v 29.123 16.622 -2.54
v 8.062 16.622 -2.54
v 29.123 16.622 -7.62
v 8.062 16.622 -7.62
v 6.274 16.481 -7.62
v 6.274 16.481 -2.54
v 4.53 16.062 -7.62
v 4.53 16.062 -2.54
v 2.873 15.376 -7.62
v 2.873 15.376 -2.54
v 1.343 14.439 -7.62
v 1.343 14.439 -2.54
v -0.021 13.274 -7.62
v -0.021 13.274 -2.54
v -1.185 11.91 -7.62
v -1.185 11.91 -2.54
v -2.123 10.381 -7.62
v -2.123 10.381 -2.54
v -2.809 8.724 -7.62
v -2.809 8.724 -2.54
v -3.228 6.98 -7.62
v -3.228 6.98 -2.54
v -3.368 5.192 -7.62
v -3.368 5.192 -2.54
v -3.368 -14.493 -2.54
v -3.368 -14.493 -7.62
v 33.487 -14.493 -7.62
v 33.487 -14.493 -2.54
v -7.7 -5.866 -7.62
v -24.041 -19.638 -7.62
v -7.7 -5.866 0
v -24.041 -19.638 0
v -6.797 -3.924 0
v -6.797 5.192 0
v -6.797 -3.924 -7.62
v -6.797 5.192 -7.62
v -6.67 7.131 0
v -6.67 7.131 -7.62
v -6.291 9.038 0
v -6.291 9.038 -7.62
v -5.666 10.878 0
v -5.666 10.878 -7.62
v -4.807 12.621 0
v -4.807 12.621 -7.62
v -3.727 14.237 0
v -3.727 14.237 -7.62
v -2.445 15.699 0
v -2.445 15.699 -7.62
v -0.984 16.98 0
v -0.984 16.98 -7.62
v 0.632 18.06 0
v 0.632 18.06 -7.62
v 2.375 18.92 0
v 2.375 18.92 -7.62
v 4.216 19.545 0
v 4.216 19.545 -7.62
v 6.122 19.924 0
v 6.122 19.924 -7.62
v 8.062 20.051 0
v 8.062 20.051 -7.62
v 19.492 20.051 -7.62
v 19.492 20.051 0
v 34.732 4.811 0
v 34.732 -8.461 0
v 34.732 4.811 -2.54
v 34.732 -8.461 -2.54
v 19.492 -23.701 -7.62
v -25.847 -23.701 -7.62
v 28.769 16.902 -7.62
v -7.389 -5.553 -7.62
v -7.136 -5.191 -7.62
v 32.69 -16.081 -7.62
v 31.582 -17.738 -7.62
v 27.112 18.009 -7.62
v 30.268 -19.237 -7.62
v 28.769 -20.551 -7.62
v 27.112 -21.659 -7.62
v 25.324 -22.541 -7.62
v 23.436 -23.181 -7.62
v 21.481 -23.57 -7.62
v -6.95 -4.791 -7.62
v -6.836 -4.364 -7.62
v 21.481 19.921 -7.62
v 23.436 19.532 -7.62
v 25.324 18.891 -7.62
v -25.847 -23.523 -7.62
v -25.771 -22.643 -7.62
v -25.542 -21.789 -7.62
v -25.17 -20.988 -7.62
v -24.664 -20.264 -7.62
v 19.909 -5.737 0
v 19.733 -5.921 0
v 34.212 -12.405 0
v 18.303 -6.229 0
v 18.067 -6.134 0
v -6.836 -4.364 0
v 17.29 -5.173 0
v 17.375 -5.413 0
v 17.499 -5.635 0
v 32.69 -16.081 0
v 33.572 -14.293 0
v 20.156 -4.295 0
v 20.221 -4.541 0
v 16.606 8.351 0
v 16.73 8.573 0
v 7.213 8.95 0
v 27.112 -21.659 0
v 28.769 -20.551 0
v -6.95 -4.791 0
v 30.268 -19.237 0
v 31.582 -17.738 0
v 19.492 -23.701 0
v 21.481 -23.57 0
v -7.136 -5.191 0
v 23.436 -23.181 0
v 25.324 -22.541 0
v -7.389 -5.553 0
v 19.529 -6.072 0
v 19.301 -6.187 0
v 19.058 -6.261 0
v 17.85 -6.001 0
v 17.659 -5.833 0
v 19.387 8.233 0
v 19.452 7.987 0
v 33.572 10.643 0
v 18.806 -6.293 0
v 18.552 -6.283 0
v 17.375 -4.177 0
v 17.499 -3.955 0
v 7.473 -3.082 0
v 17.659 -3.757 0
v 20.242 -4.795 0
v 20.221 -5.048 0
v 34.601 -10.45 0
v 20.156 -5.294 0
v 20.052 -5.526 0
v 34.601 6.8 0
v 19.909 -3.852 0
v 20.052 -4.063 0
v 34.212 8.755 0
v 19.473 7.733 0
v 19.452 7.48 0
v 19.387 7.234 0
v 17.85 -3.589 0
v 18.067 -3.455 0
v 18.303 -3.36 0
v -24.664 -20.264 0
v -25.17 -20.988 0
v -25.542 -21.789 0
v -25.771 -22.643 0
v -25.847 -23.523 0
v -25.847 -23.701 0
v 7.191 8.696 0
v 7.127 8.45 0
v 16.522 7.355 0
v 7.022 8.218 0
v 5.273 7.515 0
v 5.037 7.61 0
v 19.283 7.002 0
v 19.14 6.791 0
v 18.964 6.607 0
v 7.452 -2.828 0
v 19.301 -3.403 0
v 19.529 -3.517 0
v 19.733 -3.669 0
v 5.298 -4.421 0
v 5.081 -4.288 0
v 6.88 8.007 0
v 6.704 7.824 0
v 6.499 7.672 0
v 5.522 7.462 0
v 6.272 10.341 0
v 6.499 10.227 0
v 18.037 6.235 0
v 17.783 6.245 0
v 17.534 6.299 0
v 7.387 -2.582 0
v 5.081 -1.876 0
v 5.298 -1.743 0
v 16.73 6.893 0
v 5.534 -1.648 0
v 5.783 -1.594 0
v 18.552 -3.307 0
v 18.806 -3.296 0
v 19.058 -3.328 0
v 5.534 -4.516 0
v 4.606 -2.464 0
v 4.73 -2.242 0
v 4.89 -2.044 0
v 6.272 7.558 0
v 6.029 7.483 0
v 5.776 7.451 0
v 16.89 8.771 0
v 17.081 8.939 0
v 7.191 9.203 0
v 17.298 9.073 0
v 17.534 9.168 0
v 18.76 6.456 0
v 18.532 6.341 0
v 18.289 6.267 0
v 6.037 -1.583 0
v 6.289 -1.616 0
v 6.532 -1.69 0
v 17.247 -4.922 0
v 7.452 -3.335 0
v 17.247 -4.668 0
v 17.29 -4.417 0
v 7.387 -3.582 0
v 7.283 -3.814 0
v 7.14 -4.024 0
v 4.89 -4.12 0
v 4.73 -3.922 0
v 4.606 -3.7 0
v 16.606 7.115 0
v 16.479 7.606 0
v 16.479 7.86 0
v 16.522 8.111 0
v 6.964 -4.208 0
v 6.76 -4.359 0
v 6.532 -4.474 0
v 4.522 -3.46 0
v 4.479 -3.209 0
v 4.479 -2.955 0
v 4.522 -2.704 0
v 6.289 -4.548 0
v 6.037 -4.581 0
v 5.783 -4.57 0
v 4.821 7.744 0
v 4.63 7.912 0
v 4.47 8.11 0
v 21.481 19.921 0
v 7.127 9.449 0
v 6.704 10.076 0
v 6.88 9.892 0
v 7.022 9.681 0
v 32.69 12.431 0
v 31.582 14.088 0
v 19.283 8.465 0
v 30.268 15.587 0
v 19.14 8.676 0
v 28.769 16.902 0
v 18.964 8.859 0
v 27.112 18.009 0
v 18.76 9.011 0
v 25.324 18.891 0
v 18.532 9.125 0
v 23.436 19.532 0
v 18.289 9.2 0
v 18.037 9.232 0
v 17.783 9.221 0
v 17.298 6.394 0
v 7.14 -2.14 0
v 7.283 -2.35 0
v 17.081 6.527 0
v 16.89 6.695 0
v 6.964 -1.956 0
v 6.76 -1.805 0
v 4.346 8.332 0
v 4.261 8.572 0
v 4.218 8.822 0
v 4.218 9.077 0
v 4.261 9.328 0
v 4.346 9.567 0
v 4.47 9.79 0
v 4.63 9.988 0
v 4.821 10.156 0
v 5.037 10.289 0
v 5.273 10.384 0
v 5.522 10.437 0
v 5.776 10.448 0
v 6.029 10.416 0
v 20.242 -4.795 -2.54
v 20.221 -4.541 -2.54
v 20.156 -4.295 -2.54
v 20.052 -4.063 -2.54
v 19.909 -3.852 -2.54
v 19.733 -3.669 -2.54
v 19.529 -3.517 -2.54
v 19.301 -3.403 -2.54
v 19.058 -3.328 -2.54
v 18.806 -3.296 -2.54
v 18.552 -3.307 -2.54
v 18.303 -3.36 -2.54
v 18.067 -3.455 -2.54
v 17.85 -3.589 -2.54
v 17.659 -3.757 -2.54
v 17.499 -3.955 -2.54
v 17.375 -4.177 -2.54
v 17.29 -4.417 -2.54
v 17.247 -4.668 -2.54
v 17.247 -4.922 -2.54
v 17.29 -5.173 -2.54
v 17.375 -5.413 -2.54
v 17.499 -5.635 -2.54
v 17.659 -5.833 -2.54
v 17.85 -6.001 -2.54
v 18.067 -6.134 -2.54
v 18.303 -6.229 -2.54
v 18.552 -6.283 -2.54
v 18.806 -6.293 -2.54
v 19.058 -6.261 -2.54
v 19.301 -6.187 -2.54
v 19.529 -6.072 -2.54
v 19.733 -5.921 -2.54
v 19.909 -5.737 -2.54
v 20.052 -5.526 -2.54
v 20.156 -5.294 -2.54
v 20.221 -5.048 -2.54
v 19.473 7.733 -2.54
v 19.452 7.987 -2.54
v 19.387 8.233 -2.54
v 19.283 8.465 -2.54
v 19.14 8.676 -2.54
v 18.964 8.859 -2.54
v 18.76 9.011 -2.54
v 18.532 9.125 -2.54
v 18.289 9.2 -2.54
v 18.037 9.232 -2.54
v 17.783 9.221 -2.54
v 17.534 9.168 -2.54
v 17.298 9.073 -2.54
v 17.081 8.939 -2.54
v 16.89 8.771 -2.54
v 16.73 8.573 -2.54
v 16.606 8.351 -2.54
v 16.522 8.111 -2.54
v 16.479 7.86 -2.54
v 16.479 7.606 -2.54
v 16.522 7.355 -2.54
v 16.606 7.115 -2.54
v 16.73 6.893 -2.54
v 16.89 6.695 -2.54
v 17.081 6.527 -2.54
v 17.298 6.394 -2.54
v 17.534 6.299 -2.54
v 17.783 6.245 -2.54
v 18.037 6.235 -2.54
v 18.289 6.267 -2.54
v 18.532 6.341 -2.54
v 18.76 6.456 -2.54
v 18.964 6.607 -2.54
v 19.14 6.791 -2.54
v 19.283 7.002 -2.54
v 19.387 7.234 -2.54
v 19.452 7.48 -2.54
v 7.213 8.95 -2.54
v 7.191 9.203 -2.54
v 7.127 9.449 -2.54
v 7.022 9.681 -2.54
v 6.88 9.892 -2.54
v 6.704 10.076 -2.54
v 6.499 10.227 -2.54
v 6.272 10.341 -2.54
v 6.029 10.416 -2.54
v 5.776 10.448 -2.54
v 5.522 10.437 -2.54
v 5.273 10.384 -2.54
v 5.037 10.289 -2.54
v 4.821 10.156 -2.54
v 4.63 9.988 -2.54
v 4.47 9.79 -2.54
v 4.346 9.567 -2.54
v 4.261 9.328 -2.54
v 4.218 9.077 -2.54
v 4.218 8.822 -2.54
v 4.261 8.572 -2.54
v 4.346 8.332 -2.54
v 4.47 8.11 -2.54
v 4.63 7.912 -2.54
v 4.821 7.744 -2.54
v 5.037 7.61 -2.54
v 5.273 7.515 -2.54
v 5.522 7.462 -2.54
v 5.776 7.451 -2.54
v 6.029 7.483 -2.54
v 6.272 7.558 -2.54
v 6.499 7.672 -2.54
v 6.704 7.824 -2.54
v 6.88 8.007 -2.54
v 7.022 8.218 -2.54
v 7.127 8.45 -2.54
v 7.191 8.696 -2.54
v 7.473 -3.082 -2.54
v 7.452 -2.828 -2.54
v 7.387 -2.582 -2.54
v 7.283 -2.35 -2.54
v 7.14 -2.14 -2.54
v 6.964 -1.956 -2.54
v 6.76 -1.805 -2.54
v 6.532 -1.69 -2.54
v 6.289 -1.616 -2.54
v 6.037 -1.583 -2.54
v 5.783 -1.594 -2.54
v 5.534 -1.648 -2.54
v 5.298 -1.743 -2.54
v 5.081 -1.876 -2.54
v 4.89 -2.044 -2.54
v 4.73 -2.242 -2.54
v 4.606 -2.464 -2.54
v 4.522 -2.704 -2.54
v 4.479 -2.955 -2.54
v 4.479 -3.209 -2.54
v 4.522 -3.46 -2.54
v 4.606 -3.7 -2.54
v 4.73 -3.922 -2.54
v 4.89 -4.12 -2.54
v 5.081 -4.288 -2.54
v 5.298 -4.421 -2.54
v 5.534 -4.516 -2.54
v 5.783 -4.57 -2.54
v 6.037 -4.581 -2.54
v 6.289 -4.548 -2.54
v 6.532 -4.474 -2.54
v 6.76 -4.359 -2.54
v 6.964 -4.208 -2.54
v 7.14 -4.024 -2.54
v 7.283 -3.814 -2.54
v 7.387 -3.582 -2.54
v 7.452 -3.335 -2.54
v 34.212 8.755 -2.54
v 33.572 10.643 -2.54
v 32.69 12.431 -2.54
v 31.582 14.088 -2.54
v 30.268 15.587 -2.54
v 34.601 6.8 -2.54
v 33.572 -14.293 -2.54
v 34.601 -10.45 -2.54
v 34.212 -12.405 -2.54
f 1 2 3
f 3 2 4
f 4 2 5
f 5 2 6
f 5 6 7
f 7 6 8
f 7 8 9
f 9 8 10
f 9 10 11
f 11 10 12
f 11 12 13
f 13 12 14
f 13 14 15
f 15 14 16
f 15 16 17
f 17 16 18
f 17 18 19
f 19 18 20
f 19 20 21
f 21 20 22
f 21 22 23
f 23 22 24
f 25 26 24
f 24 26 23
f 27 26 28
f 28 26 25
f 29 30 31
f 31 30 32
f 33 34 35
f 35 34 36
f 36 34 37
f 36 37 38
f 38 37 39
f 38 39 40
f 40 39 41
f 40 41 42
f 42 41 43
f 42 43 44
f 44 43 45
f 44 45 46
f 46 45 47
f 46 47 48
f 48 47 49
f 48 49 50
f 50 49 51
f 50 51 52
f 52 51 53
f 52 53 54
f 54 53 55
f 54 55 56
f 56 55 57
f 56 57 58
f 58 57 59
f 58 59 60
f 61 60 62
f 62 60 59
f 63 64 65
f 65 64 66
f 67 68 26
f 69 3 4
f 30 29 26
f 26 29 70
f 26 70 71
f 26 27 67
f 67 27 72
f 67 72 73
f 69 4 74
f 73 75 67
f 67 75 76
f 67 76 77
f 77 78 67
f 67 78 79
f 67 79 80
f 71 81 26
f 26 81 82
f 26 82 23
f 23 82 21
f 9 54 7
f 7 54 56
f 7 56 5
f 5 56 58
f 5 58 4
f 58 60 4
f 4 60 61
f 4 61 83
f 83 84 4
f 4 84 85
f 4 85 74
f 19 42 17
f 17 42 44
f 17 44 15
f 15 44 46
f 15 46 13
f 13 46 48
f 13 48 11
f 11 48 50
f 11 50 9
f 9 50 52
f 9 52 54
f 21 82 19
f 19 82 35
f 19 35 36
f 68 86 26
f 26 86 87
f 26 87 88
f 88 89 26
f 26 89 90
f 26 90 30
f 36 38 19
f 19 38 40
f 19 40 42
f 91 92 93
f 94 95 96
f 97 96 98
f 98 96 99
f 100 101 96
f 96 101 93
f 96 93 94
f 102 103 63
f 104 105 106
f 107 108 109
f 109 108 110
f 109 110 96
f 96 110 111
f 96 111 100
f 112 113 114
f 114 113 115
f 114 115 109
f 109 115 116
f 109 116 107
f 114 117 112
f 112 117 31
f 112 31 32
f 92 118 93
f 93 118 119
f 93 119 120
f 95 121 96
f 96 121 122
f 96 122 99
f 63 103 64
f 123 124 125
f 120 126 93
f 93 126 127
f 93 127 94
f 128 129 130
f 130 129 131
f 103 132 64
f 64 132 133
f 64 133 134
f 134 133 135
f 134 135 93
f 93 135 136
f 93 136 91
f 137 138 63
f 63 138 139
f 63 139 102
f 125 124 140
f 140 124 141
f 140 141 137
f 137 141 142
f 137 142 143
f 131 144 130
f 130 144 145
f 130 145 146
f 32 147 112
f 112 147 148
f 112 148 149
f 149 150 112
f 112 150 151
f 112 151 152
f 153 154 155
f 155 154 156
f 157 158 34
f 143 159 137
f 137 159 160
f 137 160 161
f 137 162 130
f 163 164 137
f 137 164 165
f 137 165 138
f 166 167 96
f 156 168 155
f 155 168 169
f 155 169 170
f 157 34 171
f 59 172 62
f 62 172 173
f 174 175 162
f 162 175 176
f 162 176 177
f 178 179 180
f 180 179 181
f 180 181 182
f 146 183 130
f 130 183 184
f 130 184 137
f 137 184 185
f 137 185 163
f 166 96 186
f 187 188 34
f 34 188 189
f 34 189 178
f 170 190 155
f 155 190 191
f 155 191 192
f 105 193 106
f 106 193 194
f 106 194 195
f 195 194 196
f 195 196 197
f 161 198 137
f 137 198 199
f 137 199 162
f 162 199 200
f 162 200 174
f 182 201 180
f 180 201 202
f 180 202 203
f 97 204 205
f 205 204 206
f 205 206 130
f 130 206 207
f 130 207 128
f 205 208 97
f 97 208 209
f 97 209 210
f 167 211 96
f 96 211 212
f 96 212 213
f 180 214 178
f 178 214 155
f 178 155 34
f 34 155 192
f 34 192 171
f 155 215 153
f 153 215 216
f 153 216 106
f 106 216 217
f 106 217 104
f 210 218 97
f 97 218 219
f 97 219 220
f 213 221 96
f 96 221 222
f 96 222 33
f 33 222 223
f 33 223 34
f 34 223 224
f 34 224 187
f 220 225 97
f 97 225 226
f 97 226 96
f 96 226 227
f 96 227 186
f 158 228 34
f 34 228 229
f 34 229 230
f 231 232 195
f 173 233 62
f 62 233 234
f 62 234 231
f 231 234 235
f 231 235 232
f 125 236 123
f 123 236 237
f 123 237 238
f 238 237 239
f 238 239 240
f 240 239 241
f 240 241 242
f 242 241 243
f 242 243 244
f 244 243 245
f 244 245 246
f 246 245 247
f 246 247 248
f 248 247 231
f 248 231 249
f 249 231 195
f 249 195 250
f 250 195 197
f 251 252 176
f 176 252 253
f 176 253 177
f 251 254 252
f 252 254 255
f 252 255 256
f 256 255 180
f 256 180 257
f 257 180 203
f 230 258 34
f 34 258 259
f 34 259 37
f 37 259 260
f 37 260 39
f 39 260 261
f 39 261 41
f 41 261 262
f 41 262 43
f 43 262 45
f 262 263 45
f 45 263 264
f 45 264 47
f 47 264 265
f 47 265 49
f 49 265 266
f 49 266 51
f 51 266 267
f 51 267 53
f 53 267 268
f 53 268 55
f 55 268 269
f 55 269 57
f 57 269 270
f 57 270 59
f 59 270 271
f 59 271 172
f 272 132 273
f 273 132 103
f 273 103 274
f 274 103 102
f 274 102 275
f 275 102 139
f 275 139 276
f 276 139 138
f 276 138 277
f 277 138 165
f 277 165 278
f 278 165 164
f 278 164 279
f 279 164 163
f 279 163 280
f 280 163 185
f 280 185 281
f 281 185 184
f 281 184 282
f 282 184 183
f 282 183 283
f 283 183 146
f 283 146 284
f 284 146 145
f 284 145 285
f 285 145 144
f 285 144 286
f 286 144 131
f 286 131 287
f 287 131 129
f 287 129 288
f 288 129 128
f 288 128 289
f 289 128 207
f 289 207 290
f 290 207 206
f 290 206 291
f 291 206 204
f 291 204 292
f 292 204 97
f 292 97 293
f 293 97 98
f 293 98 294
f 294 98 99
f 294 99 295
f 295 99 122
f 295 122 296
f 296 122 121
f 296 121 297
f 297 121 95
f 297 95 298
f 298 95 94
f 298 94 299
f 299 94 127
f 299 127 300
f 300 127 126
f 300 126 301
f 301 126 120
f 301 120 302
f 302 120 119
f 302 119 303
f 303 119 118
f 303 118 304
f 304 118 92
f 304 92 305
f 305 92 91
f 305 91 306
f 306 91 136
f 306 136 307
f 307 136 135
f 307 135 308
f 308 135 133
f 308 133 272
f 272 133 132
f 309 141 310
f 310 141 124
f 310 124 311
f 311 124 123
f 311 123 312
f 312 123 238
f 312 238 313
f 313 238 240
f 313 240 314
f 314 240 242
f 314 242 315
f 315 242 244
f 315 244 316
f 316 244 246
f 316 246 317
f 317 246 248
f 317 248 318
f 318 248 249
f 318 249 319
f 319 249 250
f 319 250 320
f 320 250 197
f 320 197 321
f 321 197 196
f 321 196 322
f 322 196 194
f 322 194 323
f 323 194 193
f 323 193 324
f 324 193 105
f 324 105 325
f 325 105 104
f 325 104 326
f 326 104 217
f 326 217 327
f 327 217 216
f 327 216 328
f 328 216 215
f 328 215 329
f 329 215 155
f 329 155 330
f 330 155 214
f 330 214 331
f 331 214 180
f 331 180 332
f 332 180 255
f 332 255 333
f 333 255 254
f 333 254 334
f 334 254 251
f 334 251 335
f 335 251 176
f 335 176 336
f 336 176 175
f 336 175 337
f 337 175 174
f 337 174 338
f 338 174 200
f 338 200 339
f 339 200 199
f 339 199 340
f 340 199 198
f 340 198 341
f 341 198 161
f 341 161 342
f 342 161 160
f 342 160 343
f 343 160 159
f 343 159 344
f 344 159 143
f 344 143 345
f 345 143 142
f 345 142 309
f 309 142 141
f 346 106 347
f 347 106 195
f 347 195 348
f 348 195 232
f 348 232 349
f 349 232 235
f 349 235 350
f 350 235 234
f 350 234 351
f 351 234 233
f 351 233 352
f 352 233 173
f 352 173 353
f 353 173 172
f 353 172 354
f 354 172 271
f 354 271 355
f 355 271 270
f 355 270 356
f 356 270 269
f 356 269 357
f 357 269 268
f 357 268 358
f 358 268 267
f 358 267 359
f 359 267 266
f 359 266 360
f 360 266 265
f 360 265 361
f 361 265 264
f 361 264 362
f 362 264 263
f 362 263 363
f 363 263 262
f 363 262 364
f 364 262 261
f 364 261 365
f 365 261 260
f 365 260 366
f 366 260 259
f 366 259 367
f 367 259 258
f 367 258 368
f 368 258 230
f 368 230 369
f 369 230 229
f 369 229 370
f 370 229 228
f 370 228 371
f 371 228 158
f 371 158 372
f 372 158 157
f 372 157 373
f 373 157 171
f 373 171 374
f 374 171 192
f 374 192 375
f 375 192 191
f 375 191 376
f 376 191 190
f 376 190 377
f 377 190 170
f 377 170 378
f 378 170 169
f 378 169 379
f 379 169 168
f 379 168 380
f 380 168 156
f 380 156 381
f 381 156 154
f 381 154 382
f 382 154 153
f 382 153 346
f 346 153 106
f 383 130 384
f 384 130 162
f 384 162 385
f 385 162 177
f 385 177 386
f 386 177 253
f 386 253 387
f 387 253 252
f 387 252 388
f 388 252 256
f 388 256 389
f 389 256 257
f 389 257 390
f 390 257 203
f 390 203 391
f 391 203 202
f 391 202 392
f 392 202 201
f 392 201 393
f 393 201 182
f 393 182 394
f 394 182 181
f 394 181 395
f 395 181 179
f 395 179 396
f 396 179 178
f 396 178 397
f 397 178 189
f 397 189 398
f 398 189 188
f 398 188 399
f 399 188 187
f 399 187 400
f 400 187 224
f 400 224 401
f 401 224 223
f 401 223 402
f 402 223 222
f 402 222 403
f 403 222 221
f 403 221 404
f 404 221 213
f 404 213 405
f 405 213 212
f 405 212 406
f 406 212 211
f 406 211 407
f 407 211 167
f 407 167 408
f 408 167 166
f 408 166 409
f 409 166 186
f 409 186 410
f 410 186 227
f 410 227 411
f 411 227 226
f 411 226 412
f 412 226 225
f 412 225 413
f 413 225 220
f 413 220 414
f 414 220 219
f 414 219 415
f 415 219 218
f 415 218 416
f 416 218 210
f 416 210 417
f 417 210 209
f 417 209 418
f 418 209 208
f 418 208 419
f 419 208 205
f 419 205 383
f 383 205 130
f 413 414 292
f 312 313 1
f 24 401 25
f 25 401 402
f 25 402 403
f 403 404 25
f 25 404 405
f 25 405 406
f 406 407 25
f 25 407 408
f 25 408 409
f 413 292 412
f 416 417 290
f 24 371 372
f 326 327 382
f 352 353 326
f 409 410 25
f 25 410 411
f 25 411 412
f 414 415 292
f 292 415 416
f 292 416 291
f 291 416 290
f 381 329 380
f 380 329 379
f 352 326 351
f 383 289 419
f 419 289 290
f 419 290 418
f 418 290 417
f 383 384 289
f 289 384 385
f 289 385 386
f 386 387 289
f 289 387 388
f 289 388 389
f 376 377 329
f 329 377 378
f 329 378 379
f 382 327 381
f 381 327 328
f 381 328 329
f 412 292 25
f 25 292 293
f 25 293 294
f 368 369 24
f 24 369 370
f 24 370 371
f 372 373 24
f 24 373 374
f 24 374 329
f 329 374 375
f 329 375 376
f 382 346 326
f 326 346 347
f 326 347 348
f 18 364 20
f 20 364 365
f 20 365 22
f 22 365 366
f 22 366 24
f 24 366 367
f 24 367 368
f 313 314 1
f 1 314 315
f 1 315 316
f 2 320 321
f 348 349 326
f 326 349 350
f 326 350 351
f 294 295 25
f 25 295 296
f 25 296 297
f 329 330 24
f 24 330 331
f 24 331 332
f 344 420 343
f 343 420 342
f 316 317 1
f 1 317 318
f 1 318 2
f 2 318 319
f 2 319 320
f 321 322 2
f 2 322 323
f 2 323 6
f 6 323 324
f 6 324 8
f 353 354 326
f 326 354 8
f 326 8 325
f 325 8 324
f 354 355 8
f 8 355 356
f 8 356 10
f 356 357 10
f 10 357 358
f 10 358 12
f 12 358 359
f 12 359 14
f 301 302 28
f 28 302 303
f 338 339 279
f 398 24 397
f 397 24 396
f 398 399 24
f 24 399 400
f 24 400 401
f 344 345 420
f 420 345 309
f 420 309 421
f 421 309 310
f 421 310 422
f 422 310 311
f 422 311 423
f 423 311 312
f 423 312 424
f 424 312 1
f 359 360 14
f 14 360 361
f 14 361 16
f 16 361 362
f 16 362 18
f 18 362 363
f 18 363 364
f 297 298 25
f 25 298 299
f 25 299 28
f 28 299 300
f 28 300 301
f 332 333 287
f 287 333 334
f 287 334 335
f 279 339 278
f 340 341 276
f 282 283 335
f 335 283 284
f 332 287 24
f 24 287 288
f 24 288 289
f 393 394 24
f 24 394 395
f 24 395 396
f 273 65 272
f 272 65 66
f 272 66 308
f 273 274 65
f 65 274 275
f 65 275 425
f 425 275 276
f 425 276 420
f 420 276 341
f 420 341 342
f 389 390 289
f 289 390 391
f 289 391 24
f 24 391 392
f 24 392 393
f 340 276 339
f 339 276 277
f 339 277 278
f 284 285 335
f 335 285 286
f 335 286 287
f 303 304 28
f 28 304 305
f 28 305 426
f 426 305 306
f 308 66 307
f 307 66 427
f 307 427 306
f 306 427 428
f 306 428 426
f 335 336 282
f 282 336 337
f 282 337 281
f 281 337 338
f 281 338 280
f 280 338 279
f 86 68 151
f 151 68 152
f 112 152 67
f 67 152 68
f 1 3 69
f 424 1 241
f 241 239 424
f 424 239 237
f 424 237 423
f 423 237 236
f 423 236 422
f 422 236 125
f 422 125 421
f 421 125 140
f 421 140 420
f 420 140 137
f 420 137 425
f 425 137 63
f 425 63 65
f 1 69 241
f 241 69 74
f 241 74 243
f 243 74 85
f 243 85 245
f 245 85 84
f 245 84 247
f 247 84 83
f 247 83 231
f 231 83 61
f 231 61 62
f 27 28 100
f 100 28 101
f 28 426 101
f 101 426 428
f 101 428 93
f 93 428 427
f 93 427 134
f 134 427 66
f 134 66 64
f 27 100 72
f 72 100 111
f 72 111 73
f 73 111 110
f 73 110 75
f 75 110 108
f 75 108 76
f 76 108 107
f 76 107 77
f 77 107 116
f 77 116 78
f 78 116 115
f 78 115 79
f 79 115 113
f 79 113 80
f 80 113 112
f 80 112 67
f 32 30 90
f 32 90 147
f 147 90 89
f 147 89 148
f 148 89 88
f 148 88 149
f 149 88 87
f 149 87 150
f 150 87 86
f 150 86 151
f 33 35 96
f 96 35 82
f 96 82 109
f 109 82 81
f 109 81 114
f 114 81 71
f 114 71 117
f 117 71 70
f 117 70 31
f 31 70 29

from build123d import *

# Parameters (mm, degrees)
BOSS_EXTRUDE1_DEPTH = 7.62
SKETCH4_3_R         = 1.5
BOSS_EXTRUDE2_DEPTH = 2.54
SKETCH5_W           = 60.579
SKETCH5_H           = 7.62
BOSS_EXTRUDE3_DEPTH = 2.54
FILLET1_R           = 15.24
FILLET2_R           = 5.08
FILLET3_R           = 2.54


with BuildPart() as part:
    # Sketch4 → Boss-Extrude1 (new body)
    with BuildSketch(Plane.XY):
        with BuildLine():
            Line((34.731702618, -14.493095403), (-3.368297382, -14.493095403))
            Line((-3.368297382, -14.493095403), (-3.368297382, -11.064095403))
            Line((-3.368297382, -11.064095403), (-3.368297382, -8.326281589))
            Line((-3.368297382, -8.326281589), (-3.368297382, 5.191904597))
            ThreePointArc((-3.368297382, 5.191904597), (-0.020527891, 13.274135106), (8.061702618, 16.621904597))
            Line((8.061702618, 16.621904597), (34.731702618, 16.621904597))
            Line((34.731702618, 16.621904597), (34.731702618, 20.050904597))
            Line((34.731702618, 20.050904597), (8.061702618, 20.050904597))
            ThreePointArc((8.061702618, 20.050904597), (-2.445197043, 15.698804259), (-6.797297382, 5.191904597))
            Line((-6.797297382, 5.191904597), (-6.797297382, -5.10519069))
            Line((-6.797297382, -5.10519069), (-6.797297382, -14.493095403))
            Line((-6.797297382, -14.493095403), (-6.797297382, -17.922095403))
            Line((-6.797297382, -17.922095403), (-3.368297382, -17.922095403))
            Line((-3.368297382, -17.922095403), (34.731702618, -17.922095403))
            Line((34.731702618, -17.922095403), (34.731702618, -14.493095403))
        make_face()
        Polygon((-6.797297382, -21.160595403), (-6.797297382, -17.922095403), (-6.797297382, -14.493095403), (-6.797297382, -5.10519069), (-25.847297382, -21.160595403), align=None)
        Polygon((-6.797297382, -21.160595403), (34.731702618, -21.160595403), (34.731702618, -17.922095403), (-3.368297382, -17.922095403), (-6.797297382, -17.922095403), align=None)
    extrude(amount=-BOSS_EXTRUDE1_DEPTH)

    # Sketch4<3> → Boss-Extrude2 (add)
    with BuildSketch(Plane.XY):
        with BuildLine():
            Line((-3.368297382, -11.064095403), (-3.368297382, -14.493095403))
            Line((-3.368297382, -14.493095403), (34.731702618, -14.493095403))
            Line((34.731702618, -14.493095403), (34.731702618, 16.621904597))
            Line((34.731702618, 16.621904597), (8.061702618, 16.621904597))
            ThreePointArc((8.061702618, 16.621904597), (-0.020527891, 13.274135106), (-3.368297382, 5.191904597))
            Line((-3.368297382, 5.191904597), (-3.368297382, -8.326281589))
            Line((-3.368297382, -8.326281589), (-3.368297382, -11.064095403))
        make_face()
        with Locations((5.973177543, -3.081984913)):
            Circle(SKETCH4_3_R, mode=Mode.SUBTRACT)
        with Locations((18.742087817, -4.794749031)):
            Circle(SKETCH4_3_R, mode=Mode.SUBTRACT)
        with Locations((5.712659725, 8.949609908)):
            Circle(SKETCH4_3_R, mode=Mode.SUBTRACT)
        with Locations((17.97317096, 7.733253911)):
            Circle(SKETCH4_3_R, mode=Mode.SUBTRACT)
    extrude(amount=-BOSS_EXTRUDE2_DEPTH)

    # Sketch5 → Boss-Extrude3 (add)
    with BuildSketch(Plane.XZ.offset(21.160595403)):
        with Locations((4.442202618, -3.81)):
            Rectangle(SKETCH5_W, SKETCH5_H)
    extrude(amount=BOSS_EXTRUDE3_DEPTH)

    # Fillet1
    fillet1_edges = [part.edges().sort_by_distance(p)[0] for p in [
        (34.731702618, 20.050904597, -3.81),
        (34.731702618, -23.700595403, -3.81),
    ]]
    fillet(fillet1_edges, radius=FILLET1_R)

    # Fillet2
    fillet2_edges = [part.edges().sort_by_distance(p)[0] for p in [
        (-25.847297382, -21.160595403, -3.81),
    ]]
    fillet(fillet2_edges, radius=FILLET2_R)

    # Fillet3
    fillet3_edges = [part.edges().sort_by_distance(p)[0] for p in [
        (-6.797297382, -5.10519069, -3.81),
    ]]
    fillet(fillet3_edges, radius=FILLET3_R)


solid = part.part
